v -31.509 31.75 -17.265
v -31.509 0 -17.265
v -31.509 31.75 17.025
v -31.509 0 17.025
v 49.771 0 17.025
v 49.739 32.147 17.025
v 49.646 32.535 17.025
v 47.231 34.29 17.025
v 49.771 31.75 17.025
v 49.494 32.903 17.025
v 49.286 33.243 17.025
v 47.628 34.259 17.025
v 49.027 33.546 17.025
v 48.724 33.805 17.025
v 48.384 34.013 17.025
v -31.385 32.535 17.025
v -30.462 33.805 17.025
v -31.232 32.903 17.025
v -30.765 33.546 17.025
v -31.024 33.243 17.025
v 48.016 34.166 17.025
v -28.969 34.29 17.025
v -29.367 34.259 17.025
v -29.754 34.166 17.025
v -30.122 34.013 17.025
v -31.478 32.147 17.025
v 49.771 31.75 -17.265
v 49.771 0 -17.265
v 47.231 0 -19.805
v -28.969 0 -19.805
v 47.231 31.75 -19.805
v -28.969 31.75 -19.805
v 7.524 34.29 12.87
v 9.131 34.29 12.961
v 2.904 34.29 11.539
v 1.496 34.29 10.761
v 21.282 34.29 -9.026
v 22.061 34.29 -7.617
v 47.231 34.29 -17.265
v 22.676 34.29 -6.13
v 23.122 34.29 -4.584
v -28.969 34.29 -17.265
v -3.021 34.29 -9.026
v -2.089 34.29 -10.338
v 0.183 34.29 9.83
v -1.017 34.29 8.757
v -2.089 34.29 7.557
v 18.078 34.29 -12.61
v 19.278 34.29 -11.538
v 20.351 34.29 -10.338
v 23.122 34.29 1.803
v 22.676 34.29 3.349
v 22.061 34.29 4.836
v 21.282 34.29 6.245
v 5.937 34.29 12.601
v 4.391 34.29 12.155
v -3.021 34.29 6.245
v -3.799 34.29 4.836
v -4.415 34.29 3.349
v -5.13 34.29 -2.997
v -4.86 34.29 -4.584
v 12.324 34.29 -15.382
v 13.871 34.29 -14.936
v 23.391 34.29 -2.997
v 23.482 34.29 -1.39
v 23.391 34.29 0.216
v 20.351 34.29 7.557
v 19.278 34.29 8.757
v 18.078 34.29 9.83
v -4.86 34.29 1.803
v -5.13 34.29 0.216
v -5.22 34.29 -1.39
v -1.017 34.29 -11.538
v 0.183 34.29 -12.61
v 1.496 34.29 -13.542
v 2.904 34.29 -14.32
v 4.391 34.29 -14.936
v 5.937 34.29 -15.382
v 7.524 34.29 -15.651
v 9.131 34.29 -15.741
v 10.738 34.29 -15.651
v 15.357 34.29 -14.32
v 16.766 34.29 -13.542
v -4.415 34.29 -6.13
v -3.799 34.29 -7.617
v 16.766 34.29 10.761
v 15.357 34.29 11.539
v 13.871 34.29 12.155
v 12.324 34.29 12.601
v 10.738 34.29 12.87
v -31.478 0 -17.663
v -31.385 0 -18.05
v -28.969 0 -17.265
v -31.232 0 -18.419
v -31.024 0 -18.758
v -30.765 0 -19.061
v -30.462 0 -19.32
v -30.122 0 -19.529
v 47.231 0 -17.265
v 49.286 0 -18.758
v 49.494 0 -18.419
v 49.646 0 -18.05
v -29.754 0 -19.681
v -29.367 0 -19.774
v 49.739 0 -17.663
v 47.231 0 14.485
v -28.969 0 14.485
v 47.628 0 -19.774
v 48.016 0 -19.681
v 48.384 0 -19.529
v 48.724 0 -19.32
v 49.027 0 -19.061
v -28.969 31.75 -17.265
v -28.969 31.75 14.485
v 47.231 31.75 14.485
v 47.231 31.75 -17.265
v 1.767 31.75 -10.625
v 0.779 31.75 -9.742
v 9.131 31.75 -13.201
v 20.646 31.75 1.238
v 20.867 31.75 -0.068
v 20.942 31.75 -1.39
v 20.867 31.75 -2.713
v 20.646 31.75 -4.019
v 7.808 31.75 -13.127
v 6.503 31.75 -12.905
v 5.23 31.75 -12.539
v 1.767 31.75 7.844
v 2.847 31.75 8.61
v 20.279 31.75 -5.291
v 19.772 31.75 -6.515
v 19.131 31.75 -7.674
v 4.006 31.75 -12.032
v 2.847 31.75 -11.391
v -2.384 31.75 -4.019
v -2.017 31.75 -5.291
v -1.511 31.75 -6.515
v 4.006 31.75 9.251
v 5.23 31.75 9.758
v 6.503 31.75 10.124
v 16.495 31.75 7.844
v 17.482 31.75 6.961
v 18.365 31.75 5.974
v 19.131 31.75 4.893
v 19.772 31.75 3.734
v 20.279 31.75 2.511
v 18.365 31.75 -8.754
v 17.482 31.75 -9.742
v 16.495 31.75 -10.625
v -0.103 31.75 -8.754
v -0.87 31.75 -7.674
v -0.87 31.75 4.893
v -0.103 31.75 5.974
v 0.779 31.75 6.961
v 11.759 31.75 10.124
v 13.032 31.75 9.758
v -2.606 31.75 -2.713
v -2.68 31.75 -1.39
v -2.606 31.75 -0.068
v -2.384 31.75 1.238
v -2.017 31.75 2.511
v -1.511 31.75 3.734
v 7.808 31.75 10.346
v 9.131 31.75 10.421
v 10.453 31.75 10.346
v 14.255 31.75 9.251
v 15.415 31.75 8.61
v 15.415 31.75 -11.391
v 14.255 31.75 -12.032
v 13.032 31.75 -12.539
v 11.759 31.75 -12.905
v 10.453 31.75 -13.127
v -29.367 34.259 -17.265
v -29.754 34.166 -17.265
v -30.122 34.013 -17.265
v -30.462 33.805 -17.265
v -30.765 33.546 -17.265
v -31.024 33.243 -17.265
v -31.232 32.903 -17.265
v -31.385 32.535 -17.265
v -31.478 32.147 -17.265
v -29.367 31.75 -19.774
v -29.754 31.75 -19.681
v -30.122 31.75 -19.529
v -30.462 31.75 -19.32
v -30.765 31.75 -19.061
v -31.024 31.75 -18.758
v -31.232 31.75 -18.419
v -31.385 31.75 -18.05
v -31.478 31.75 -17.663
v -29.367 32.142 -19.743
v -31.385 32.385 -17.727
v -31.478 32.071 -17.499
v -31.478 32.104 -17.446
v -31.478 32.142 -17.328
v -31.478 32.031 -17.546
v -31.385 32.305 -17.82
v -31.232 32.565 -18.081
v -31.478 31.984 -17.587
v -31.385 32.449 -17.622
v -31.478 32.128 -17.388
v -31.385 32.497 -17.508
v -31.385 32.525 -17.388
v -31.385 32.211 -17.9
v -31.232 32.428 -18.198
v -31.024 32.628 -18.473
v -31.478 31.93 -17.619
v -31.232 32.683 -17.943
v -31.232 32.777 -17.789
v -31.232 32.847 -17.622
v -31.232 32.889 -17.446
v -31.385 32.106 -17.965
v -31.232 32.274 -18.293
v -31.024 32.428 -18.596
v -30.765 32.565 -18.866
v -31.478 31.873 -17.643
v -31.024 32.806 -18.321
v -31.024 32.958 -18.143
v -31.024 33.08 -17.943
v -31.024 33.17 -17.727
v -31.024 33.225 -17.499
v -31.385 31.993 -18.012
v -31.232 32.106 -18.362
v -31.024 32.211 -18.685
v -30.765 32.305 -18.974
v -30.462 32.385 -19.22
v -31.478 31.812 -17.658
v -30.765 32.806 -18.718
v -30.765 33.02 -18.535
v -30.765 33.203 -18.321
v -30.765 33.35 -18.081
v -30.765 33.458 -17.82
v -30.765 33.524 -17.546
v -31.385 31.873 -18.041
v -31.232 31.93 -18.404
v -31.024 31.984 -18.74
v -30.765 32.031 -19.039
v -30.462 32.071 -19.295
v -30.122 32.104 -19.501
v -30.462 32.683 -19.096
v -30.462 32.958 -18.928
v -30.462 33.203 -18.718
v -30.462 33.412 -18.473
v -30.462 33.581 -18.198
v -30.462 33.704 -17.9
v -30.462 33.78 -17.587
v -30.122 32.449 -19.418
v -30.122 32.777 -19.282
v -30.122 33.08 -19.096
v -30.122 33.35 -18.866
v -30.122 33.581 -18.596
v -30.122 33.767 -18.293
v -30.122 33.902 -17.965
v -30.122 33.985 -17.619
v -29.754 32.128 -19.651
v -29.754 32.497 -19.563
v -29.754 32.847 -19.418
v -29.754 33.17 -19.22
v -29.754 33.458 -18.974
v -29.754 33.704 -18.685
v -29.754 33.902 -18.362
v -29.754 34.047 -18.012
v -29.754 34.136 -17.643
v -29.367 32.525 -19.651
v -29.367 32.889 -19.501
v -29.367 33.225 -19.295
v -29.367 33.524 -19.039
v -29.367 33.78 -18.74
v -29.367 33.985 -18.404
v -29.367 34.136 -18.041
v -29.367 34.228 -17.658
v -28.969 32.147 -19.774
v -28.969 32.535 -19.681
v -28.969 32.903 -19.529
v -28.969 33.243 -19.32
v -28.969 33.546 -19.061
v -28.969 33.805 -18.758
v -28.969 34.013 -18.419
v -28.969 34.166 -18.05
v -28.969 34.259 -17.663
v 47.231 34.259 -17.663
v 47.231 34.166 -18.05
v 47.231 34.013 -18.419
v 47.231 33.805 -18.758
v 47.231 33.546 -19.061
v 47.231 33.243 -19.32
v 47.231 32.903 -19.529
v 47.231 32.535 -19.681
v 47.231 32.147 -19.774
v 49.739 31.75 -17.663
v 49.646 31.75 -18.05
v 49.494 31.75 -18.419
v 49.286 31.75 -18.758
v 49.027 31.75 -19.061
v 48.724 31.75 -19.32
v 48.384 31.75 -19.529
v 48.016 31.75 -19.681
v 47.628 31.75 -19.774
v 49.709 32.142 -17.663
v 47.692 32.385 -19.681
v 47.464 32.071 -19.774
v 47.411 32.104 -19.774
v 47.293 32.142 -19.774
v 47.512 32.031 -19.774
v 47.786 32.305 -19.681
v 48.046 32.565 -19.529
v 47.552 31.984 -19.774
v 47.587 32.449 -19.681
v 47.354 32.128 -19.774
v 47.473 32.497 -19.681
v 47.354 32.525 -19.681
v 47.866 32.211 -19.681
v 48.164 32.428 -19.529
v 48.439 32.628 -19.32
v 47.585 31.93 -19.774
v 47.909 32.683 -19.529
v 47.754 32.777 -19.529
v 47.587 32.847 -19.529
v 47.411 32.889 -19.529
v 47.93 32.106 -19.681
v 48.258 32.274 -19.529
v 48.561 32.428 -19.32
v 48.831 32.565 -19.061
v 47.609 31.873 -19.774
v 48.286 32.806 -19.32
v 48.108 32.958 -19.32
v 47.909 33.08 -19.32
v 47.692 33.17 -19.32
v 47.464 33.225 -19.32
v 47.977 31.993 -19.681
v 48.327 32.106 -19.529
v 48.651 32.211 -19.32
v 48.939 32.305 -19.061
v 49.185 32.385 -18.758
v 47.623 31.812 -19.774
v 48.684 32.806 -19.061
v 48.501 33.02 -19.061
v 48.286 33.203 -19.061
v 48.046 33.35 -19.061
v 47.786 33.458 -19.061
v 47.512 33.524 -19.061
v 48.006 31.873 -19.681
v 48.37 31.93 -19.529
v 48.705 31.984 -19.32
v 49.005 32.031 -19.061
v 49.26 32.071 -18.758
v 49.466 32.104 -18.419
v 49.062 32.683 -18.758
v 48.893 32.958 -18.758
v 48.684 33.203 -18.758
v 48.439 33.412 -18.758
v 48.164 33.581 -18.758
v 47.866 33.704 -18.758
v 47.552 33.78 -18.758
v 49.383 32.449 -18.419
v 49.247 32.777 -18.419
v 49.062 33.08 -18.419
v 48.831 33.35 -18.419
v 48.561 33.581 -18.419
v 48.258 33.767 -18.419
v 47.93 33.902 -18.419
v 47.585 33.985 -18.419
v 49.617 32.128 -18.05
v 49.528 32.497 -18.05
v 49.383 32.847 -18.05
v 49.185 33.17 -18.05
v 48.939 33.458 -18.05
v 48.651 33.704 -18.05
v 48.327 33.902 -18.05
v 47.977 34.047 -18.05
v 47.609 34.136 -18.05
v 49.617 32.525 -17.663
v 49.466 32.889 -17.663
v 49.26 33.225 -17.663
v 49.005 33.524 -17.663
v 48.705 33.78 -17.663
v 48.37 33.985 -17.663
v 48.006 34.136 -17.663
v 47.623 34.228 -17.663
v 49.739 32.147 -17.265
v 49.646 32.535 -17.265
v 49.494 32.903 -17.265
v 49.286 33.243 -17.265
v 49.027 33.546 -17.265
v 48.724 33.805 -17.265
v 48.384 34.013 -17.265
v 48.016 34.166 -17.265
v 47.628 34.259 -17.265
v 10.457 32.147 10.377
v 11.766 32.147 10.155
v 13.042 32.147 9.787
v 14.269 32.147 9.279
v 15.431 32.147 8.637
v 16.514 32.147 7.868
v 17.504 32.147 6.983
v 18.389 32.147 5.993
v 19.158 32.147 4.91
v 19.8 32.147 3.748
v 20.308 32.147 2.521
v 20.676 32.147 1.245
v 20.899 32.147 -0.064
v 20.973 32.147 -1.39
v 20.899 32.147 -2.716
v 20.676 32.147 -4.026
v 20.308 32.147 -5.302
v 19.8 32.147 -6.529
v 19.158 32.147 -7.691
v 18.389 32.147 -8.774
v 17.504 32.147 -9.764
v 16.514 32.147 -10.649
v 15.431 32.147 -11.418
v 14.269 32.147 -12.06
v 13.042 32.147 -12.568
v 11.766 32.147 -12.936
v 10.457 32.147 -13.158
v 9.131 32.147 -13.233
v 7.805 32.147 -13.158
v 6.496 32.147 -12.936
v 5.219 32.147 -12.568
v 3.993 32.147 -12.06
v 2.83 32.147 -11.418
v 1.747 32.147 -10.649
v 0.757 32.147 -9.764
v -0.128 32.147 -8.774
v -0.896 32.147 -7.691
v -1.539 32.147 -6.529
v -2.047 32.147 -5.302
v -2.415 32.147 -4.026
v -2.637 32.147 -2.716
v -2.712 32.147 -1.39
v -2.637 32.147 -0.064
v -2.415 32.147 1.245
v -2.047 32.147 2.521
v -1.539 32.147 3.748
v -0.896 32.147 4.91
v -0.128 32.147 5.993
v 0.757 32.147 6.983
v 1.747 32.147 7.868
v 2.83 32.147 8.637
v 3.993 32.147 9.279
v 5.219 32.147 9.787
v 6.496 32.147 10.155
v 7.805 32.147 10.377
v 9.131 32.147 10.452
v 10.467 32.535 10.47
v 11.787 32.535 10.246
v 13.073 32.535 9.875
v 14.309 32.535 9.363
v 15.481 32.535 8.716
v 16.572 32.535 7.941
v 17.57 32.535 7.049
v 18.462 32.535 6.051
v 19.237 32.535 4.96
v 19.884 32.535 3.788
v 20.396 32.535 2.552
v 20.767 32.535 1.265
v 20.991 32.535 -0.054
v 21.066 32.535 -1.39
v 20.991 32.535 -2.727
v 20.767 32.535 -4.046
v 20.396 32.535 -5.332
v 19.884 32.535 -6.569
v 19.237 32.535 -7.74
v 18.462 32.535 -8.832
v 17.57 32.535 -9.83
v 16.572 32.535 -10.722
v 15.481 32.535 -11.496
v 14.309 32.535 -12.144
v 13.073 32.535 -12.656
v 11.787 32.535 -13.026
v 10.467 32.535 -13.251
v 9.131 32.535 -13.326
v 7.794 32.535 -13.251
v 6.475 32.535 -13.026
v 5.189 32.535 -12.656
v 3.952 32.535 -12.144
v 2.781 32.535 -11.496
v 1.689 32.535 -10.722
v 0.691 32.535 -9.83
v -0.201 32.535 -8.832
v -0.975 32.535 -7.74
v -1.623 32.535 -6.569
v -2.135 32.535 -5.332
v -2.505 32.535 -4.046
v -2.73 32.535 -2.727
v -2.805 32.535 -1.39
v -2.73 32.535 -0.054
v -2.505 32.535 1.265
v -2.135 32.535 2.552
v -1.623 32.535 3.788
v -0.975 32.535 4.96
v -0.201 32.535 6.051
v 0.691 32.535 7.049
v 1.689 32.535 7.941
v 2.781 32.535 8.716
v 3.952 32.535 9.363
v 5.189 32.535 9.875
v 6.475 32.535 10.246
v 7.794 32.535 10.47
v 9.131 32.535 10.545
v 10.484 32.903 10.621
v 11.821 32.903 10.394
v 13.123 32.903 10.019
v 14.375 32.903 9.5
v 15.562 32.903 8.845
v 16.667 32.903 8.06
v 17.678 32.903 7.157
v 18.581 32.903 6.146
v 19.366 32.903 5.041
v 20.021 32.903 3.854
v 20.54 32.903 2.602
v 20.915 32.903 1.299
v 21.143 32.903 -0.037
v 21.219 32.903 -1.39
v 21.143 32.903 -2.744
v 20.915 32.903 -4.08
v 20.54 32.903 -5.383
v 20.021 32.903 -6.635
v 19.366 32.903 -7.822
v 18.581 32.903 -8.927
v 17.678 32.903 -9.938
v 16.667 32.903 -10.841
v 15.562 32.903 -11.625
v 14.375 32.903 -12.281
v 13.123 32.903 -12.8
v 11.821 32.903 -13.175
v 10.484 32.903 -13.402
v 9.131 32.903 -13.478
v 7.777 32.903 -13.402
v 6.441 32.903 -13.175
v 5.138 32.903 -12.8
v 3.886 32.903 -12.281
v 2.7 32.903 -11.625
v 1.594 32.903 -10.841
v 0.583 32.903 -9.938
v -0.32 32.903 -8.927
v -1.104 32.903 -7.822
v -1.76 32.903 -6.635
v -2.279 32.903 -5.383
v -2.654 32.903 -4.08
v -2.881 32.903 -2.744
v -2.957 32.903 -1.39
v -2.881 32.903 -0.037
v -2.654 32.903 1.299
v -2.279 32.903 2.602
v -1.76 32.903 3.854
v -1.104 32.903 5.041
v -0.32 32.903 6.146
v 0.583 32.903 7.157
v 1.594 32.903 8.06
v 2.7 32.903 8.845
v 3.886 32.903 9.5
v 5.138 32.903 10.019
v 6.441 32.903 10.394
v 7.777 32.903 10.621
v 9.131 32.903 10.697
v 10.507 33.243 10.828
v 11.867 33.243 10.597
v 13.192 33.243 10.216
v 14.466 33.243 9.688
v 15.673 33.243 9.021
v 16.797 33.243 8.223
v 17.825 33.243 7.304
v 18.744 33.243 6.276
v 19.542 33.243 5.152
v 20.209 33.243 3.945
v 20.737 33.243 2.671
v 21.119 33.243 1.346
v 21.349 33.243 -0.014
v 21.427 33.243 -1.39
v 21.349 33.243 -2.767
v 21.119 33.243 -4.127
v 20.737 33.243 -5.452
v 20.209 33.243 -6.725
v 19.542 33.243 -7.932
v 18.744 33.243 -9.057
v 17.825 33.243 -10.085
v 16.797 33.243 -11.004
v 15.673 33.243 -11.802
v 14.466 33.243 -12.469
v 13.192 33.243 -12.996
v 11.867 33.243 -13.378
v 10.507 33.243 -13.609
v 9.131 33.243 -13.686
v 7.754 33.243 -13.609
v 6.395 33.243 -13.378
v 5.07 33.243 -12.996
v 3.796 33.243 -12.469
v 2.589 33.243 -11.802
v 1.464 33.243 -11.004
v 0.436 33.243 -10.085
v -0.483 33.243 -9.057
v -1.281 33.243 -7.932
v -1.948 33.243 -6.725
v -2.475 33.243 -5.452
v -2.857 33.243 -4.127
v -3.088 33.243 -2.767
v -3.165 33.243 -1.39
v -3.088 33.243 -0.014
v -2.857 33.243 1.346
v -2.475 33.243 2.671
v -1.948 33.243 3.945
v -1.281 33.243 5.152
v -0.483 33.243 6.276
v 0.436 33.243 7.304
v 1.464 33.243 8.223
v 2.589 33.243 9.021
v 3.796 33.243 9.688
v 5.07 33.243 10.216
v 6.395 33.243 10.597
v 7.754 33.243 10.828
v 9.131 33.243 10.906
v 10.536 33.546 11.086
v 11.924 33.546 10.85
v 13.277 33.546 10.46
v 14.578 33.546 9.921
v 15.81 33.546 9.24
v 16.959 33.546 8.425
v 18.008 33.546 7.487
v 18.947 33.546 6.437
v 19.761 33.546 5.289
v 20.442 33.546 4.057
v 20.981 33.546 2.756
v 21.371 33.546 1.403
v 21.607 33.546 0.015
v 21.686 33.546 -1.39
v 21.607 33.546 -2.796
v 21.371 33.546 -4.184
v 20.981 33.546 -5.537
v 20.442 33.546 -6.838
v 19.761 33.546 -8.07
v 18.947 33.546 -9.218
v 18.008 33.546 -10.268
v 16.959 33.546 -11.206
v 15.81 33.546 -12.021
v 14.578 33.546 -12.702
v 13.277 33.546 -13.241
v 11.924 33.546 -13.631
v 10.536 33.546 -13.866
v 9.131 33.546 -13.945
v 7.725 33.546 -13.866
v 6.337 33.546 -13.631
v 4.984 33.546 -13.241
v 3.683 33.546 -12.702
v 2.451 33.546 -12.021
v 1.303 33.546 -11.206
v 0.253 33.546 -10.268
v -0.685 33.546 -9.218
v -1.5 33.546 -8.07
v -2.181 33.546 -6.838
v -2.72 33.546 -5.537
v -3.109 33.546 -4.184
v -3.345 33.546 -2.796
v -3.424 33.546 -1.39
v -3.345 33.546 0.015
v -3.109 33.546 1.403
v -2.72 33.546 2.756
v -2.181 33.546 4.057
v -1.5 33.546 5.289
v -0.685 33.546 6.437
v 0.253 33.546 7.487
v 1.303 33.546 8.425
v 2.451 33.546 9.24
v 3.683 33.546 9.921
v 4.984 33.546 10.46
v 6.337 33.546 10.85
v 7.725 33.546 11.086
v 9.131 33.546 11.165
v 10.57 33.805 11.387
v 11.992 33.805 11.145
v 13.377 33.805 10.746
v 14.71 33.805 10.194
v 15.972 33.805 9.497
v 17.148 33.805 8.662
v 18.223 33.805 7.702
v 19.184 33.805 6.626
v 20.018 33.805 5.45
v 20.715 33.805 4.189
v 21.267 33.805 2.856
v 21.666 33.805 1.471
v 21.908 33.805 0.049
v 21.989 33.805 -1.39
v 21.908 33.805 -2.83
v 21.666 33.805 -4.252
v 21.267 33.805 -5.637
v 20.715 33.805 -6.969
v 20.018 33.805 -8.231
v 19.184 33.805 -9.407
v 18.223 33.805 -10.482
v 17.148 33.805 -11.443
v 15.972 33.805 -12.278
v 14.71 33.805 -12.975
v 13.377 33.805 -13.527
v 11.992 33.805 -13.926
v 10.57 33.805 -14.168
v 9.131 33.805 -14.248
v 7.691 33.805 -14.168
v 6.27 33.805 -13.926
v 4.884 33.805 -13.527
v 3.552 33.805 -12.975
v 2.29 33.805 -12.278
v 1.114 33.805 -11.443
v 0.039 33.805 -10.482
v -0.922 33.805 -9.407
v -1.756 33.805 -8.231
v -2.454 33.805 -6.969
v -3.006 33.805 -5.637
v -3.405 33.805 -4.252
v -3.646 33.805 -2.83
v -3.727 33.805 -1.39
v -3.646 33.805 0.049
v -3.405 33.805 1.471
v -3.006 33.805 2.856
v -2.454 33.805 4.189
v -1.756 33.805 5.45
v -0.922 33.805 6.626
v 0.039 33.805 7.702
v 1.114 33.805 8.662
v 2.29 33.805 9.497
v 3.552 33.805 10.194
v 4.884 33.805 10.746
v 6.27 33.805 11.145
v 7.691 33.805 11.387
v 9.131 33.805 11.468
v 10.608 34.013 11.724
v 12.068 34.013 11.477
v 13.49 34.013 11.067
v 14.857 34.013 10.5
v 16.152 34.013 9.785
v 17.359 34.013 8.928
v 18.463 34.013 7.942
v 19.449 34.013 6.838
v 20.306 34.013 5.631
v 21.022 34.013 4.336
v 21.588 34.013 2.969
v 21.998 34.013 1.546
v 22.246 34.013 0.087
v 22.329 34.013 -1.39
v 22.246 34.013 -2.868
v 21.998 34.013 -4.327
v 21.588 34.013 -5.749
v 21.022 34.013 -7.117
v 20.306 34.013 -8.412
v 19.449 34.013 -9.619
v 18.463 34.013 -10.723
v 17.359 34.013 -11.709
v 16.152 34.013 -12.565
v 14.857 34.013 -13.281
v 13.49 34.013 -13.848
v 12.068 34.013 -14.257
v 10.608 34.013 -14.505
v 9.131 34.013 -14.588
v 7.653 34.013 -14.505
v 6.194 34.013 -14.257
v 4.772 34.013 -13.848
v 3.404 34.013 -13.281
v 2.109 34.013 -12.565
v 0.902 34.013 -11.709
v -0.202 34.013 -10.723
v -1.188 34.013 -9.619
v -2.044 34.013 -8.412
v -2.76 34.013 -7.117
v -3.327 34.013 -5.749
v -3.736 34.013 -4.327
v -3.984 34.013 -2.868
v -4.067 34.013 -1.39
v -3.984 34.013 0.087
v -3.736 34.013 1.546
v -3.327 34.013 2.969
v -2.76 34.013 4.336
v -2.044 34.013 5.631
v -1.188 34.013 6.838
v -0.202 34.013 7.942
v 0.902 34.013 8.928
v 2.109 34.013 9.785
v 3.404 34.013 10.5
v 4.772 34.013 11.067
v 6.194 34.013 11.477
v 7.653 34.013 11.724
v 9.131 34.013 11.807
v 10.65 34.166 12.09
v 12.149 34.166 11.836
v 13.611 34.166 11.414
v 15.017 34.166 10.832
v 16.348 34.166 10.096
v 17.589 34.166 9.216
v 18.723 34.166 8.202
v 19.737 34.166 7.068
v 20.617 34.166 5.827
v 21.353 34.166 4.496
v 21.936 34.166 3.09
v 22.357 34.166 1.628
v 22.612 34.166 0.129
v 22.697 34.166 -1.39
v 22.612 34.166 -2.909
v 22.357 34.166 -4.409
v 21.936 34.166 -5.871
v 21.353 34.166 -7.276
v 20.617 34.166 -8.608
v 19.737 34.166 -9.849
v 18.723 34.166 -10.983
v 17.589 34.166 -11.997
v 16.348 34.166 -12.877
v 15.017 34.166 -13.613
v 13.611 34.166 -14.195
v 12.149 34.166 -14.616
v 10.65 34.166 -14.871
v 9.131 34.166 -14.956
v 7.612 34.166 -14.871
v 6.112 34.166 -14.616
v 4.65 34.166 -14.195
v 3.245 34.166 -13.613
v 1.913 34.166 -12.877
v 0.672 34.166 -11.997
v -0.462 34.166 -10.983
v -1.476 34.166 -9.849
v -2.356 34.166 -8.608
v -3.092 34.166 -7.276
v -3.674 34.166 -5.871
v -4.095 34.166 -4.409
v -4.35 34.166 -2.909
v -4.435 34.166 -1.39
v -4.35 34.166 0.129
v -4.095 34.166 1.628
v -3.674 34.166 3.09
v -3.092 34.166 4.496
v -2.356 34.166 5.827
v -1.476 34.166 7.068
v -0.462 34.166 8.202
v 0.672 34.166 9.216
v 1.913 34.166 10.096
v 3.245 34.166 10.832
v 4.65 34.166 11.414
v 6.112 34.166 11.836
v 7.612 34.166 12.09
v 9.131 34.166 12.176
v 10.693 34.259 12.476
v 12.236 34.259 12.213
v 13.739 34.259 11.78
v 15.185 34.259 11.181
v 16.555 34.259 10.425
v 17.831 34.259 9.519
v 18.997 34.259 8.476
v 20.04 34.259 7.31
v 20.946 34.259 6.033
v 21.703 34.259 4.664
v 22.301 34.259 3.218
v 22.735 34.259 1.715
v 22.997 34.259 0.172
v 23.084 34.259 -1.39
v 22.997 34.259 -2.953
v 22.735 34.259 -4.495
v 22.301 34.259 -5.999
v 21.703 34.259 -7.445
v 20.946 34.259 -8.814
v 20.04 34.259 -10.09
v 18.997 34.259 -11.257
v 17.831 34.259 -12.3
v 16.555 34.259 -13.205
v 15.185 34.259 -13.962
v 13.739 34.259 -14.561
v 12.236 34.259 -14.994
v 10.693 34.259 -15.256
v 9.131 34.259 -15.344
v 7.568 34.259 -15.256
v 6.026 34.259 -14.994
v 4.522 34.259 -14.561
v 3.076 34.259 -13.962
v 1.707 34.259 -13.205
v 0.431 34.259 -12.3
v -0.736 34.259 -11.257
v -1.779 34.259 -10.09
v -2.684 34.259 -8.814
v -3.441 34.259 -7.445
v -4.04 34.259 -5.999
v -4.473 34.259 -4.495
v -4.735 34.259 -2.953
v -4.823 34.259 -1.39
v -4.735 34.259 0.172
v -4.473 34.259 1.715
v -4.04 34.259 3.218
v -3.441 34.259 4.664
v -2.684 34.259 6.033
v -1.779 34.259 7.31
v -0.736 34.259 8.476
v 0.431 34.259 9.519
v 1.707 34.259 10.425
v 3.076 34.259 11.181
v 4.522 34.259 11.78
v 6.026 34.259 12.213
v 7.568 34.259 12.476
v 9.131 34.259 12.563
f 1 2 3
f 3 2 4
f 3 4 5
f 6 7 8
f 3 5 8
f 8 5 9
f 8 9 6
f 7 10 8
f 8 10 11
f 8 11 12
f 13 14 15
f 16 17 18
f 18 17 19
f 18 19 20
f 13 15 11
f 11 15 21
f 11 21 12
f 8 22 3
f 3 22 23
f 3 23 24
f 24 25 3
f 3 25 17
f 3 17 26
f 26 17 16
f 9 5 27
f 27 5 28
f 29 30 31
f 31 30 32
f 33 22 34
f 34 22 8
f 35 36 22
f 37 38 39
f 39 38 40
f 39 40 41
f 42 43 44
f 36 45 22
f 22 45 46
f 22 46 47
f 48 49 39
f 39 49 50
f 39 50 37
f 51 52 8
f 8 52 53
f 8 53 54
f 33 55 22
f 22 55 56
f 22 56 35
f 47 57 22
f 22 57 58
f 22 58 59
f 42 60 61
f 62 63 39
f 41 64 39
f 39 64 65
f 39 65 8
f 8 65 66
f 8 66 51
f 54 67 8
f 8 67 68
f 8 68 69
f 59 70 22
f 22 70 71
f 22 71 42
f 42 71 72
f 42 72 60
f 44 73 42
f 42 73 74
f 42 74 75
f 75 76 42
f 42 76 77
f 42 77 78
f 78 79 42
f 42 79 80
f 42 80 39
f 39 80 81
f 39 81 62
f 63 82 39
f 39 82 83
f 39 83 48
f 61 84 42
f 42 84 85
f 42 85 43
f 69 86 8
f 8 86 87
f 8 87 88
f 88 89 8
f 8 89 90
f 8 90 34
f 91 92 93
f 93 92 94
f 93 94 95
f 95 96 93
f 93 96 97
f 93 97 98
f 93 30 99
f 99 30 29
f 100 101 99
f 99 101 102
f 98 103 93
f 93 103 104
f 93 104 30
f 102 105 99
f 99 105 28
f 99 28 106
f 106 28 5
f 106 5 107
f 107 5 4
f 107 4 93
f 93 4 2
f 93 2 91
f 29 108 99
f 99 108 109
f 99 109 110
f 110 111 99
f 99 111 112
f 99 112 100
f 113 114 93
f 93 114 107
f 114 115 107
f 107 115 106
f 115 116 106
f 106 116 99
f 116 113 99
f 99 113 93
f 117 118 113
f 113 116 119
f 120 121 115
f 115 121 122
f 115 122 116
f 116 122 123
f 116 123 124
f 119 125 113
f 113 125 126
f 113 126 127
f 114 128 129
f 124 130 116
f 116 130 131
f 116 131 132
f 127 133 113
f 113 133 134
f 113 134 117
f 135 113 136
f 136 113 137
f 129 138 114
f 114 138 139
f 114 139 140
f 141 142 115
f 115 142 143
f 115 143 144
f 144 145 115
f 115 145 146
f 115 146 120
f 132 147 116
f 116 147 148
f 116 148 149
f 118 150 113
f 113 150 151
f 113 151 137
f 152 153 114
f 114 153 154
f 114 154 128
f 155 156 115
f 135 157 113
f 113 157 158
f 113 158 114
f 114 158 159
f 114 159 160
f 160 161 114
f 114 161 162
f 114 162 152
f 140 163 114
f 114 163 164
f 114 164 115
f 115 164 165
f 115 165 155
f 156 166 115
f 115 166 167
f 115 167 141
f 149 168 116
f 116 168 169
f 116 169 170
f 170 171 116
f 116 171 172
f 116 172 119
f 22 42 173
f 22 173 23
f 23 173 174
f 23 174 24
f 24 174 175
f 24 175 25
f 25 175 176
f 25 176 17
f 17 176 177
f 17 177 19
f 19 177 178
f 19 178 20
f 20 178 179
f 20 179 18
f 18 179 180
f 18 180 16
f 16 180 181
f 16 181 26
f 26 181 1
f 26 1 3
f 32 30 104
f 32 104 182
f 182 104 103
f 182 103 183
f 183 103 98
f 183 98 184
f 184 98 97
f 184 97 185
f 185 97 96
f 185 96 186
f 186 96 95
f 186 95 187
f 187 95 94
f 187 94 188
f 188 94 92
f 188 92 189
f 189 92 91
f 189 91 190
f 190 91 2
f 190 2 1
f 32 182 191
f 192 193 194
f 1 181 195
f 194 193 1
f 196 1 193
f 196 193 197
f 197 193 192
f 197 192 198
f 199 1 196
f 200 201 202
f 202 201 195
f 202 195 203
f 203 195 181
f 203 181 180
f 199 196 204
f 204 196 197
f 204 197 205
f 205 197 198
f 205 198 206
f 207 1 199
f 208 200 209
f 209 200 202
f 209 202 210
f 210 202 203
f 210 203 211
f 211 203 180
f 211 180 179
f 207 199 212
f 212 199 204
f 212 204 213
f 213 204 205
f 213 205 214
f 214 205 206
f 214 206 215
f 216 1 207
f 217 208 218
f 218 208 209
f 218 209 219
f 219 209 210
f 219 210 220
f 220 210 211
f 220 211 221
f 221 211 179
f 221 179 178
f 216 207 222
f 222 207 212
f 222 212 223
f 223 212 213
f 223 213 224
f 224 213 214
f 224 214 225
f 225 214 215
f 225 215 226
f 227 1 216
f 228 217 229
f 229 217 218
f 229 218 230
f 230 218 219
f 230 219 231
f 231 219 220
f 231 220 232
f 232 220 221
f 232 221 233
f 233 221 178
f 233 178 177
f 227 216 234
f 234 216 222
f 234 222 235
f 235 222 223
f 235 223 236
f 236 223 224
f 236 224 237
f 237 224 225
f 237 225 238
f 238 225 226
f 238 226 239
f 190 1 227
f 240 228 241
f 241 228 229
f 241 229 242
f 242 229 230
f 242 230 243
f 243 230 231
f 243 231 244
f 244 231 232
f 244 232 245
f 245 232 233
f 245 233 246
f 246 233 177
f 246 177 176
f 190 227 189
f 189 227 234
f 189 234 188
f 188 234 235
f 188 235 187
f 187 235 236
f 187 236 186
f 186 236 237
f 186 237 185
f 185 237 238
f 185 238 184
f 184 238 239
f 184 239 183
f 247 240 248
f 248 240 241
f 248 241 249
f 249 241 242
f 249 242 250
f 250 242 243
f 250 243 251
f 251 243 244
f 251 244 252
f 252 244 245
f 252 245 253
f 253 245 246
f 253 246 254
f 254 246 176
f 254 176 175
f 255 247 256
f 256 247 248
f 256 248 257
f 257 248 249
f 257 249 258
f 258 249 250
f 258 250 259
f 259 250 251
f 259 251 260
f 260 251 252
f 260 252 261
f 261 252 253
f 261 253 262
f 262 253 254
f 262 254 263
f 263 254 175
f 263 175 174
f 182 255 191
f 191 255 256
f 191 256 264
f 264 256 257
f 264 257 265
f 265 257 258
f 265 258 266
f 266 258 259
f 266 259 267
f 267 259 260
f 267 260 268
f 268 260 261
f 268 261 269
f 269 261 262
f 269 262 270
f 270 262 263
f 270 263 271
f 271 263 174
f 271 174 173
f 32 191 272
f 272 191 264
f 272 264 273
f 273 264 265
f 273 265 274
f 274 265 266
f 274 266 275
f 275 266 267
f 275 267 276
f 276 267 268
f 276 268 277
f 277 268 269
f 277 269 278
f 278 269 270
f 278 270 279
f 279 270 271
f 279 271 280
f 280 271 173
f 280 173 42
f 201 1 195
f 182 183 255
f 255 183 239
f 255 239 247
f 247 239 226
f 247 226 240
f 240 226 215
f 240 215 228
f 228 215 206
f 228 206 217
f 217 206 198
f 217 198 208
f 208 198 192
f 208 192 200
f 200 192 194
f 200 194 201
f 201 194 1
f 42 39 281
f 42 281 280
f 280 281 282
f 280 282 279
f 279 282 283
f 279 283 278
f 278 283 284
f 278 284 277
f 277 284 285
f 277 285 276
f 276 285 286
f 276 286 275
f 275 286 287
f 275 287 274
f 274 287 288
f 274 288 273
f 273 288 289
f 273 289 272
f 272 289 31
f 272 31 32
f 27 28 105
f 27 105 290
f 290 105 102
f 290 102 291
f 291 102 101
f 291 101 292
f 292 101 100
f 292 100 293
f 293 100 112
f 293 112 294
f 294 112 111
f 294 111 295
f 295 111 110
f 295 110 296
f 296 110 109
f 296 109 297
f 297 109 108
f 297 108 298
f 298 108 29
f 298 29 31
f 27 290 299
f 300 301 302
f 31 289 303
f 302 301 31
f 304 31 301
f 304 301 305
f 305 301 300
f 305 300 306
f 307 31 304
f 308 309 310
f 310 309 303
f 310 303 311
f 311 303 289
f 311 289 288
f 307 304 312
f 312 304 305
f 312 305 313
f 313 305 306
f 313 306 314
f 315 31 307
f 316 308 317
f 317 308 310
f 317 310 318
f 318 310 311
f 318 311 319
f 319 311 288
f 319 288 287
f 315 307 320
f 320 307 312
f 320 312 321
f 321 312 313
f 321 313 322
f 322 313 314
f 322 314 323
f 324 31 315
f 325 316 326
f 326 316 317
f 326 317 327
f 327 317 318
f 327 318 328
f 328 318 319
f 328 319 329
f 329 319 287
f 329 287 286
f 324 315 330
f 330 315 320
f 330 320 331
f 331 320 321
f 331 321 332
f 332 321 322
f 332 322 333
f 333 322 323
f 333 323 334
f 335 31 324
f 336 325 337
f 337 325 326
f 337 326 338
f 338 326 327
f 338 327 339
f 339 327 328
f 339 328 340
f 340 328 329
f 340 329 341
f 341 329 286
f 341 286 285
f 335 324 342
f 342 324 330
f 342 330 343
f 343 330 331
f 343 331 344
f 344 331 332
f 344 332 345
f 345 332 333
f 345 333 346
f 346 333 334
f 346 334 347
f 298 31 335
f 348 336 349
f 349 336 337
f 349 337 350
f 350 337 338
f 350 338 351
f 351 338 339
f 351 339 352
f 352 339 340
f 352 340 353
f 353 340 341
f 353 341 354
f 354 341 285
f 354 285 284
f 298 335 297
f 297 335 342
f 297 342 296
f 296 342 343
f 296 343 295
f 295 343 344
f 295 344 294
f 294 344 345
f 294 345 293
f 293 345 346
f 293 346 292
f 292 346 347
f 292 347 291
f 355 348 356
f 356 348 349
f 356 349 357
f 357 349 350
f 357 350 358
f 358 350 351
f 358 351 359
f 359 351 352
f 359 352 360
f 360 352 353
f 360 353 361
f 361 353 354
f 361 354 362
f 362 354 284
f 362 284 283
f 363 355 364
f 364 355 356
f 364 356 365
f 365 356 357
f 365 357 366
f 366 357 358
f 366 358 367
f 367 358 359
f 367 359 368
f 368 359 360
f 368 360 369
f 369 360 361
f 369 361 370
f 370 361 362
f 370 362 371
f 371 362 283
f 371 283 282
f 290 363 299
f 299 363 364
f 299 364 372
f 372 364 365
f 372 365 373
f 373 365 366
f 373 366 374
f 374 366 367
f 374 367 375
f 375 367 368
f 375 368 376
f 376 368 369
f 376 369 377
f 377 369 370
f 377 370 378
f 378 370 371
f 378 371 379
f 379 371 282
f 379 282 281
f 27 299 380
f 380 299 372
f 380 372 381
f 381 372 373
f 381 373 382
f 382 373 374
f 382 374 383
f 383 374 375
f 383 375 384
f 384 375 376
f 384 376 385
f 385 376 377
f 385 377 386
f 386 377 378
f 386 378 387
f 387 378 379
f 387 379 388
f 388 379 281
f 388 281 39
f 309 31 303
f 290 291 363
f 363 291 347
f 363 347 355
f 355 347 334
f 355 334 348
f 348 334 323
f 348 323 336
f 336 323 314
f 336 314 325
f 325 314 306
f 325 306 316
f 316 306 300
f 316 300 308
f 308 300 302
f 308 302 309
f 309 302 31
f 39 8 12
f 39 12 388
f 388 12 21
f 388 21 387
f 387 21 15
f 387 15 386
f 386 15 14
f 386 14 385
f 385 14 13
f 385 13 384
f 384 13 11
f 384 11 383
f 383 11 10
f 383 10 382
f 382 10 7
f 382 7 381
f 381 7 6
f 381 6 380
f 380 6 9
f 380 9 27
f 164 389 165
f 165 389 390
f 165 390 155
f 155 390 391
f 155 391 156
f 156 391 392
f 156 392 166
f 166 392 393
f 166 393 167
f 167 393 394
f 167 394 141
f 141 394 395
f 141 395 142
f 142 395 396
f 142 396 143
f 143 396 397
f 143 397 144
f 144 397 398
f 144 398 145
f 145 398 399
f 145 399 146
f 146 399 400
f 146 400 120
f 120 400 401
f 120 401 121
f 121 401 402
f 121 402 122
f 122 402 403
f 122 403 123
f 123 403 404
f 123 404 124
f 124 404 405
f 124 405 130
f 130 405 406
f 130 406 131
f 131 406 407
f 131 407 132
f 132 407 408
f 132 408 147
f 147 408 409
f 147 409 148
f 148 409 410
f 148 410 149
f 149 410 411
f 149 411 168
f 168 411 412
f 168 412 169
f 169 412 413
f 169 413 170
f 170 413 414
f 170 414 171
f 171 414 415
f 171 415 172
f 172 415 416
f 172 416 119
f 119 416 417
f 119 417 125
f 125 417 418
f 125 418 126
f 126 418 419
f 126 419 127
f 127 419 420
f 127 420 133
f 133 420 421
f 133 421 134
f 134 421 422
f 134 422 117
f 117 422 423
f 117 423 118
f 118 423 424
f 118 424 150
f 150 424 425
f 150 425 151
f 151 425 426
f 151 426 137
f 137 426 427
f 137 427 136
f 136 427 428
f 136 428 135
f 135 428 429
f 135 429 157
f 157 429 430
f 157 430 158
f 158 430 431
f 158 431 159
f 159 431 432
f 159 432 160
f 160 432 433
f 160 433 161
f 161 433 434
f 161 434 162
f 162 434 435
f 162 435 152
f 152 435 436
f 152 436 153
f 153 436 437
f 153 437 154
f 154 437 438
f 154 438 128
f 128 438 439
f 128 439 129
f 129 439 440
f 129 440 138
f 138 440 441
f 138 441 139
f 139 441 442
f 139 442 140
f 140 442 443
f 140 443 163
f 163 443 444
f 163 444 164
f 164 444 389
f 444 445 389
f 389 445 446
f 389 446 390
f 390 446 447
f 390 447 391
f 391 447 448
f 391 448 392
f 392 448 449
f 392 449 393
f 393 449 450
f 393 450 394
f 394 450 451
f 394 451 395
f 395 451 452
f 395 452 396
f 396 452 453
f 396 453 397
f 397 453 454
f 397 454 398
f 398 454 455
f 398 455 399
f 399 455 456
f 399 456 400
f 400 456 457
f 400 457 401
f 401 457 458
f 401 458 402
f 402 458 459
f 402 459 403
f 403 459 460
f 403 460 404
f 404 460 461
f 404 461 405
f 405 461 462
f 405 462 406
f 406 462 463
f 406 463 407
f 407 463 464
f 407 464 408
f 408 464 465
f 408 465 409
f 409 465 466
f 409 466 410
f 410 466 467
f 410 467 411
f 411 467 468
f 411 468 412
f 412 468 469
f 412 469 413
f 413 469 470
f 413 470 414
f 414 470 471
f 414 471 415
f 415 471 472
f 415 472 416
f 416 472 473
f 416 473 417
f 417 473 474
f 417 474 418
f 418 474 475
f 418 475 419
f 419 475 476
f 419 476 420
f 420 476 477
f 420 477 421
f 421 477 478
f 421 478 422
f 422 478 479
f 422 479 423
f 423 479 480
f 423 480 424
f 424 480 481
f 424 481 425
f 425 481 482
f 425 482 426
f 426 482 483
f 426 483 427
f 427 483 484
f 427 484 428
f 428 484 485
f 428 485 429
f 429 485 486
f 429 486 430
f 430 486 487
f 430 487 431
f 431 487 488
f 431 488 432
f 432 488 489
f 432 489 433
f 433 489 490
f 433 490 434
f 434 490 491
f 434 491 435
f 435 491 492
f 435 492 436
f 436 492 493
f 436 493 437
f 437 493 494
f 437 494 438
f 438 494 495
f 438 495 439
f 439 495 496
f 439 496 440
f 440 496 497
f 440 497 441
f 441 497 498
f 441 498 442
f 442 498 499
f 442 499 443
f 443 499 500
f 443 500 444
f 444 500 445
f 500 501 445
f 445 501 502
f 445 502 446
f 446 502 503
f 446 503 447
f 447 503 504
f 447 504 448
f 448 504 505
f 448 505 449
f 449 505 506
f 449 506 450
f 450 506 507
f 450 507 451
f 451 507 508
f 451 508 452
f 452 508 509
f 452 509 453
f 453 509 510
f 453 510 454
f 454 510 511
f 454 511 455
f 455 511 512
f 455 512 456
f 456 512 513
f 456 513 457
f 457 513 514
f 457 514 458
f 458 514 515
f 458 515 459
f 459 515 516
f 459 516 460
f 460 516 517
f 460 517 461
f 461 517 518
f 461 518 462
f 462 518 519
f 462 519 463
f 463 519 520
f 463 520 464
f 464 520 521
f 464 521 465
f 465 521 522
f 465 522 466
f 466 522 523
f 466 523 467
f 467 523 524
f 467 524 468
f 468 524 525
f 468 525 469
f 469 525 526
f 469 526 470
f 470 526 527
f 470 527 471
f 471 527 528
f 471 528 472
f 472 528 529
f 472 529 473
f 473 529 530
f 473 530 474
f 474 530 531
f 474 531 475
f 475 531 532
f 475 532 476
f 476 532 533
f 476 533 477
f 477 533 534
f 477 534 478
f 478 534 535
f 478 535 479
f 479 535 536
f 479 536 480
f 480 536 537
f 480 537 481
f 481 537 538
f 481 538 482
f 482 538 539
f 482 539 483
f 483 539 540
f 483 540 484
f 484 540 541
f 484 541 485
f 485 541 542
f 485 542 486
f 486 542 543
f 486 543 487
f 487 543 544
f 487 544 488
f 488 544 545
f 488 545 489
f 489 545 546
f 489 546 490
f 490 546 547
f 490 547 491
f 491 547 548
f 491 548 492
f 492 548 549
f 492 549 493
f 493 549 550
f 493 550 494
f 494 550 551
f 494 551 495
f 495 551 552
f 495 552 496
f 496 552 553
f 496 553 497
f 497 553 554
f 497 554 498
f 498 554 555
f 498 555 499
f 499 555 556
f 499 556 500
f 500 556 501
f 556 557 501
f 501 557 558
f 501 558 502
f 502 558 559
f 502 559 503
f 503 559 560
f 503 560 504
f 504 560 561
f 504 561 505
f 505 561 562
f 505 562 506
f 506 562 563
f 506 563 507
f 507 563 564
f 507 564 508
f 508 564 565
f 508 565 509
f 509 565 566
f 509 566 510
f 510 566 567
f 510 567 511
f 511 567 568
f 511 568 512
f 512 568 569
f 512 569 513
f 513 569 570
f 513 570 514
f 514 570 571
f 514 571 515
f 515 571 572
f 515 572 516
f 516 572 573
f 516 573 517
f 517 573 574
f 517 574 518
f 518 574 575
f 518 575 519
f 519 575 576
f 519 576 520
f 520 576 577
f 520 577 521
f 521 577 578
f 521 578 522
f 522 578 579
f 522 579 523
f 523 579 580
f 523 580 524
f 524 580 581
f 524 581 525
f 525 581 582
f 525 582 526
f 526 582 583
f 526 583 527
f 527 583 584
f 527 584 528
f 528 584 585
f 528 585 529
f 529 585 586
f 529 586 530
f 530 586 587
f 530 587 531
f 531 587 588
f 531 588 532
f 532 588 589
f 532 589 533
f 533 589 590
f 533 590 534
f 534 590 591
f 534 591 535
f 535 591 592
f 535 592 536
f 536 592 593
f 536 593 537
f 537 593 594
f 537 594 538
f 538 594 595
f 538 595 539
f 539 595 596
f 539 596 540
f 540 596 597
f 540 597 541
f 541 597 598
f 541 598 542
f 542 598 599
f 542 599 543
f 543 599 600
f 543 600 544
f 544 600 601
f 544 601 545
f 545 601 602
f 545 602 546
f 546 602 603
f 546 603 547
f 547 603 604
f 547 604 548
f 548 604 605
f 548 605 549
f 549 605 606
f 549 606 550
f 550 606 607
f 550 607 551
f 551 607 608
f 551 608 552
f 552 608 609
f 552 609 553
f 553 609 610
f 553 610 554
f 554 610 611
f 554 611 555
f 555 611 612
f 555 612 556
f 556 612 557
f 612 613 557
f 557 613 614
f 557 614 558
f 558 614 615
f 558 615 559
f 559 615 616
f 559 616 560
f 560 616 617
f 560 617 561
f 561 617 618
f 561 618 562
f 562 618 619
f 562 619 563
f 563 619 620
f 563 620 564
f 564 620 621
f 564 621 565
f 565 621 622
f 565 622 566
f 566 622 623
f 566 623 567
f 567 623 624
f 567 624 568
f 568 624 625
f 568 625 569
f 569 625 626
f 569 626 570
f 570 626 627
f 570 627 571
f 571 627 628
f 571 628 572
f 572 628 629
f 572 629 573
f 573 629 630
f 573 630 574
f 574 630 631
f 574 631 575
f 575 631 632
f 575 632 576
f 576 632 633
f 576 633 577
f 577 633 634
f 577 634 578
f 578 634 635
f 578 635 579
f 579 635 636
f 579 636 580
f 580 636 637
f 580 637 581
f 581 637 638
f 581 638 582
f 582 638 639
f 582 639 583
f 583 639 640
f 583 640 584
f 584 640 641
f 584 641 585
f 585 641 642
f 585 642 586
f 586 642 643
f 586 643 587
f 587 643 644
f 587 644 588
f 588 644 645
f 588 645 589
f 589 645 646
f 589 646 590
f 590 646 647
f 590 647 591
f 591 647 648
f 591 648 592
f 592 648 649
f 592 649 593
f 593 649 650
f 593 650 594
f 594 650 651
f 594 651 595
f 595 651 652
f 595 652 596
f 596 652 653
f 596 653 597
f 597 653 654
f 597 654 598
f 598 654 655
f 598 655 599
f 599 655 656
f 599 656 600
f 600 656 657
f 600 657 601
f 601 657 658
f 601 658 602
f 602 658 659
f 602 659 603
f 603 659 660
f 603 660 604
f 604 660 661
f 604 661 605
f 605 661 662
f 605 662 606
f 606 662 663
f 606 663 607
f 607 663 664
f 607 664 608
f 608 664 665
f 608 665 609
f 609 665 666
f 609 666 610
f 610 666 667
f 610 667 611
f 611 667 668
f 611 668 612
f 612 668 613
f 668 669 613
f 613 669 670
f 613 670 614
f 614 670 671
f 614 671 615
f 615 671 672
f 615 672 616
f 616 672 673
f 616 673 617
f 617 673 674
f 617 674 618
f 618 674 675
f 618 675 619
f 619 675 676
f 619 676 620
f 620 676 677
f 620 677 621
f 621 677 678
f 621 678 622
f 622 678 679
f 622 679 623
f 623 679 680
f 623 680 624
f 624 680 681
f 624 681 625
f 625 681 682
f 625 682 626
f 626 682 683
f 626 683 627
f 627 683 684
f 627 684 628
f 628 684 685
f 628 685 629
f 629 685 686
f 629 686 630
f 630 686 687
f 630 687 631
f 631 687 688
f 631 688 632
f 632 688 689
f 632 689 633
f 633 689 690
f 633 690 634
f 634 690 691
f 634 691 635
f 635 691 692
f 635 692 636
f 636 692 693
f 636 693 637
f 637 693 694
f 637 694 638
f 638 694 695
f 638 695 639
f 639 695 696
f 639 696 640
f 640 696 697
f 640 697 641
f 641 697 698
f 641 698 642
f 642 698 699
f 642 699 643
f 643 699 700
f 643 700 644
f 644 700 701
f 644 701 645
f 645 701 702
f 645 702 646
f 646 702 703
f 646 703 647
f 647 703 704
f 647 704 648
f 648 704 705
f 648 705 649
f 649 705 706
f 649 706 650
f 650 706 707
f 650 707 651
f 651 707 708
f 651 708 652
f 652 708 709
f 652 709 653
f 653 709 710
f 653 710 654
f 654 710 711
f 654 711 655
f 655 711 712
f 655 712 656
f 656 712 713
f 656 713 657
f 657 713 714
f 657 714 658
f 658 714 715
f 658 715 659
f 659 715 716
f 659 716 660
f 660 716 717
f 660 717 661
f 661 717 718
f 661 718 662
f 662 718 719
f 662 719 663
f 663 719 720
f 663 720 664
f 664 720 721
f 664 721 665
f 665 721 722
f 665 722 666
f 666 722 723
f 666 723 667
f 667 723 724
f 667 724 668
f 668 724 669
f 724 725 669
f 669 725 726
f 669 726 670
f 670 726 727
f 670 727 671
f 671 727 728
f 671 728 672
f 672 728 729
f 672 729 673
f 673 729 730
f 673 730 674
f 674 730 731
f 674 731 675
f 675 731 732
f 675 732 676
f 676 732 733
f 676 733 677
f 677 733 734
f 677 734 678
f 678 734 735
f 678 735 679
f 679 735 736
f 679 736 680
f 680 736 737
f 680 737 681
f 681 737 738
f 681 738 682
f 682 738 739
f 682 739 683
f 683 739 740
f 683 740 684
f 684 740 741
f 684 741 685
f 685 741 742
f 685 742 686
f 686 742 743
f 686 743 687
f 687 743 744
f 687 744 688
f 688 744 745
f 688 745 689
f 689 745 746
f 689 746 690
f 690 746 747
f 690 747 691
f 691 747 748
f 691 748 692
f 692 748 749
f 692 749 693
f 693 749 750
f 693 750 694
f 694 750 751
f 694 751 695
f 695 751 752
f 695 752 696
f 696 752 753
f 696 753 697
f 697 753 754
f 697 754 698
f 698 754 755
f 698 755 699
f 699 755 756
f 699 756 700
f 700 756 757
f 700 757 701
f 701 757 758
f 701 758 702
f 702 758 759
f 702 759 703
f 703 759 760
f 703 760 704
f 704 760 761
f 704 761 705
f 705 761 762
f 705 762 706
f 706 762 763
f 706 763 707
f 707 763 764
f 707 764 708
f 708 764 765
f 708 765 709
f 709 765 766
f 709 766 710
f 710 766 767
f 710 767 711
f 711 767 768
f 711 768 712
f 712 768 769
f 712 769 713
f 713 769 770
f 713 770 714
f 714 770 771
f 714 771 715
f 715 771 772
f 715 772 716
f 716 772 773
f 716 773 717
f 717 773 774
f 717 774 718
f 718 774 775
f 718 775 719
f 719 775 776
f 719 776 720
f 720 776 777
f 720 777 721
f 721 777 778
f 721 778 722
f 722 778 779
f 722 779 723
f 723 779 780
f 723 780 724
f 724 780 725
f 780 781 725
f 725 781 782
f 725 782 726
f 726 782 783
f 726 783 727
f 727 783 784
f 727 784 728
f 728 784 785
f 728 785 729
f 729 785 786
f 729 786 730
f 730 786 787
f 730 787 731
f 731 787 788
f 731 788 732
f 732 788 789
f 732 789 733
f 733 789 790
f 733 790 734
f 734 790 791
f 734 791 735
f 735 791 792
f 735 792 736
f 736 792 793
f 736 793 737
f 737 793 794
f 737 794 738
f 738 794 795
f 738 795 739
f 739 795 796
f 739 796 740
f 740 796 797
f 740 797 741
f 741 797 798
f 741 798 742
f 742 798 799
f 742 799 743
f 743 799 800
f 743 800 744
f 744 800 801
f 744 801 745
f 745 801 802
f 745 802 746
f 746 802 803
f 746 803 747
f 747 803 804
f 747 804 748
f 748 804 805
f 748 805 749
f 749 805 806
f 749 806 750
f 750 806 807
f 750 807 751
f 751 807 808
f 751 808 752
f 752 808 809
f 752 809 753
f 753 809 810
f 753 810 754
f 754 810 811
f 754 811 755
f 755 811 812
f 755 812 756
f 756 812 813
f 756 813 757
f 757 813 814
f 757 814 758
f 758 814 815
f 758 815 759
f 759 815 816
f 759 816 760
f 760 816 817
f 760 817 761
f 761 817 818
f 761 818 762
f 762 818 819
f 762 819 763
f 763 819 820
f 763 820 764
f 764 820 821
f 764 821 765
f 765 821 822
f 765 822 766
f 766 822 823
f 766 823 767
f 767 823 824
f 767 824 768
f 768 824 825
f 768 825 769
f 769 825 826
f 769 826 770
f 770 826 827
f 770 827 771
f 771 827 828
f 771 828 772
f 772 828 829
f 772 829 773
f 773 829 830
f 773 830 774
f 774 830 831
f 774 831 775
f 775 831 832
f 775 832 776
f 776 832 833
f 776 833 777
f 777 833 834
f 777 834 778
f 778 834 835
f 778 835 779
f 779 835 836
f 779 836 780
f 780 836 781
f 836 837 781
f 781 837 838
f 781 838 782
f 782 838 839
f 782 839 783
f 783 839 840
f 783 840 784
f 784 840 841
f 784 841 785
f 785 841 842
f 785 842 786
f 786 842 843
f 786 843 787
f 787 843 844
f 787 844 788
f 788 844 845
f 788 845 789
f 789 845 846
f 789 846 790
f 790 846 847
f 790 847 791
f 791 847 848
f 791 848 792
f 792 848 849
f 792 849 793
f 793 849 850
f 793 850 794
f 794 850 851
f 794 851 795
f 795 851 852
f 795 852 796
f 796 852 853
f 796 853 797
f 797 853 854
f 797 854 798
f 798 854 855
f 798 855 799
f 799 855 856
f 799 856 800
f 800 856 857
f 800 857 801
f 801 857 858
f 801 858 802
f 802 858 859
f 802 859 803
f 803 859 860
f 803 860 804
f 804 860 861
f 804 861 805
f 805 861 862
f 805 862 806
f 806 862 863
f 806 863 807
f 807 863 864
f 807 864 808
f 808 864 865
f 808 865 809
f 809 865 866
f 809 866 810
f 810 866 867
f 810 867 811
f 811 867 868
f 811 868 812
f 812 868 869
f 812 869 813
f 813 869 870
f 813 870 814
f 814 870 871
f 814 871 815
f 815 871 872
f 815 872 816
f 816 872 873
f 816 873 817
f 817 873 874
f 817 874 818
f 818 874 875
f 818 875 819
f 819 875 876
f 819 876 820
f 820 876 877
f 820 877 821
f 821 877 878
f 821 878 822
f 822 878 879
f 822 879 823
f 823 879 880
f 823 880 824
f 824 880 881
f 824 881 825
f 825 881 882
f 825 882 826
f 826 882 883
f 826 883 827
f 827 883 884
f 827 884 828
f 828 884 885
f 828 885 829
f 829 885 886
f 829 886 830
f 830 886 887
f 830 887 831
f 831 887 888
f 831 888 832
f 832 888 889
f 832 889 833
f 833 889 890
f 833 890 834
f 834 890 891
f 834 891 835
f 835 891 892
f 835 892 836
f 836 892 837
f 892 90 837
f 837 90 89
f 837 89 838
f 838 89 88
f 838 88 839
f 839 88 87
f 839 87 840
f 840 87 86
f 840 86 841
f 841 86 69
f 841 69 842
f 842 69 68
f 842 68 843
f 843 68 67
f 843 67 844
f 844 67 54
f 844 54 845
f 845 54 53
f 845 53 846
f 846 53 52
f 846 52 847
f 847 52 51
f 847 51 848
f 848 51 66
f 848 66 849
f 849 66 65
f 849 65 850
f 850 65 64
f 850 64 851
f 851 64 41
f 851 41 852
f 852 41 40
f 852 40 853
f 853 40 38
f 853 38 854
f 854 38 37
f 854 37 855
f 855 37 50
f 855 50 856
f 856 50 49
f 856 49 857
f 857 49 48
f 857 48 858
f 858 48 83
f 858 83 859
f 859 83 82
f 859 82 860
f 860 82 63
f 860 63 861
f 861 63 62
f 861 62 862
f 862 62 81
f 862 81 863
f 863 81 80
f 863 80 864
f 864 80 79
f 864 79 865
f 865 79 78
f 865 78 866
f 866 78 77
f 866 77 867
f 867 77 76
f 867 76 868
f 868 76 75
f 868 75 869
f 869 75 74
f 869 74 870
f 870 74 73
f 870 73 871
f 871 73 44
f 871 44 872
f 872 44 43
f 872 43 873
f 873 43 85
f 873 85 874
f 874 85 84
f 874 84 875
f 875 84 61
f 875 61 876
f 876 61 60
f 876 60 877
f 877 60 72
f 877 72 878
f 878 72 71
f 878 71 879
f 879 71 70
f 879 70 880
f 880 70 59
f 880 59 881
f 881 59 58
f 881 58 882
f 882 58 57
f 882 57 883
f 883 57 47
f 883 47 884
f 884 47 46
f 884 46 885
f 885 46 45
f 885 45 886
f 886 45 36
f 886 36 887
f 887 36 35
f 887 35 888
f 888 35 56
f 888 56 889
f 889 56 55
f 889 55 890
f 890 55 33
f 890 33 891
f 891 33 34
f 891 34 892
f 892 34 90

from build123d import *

# Parameters (mm, degrees)
SKETCH1_W           = 76.2
SKETCH1_H           = 31.75
BOSS_EXTRUDE1_DEPTH = 31.75
SHELL4_T            = 2.54
CUT_EXTRUDE5_START  = 34.29
SKETCH2_R           = 11.811
CUT_EXTRUDE5_DEPTH  = 12.7
FILLET3_R           = 2.54


with BuildPart() as part:
    # Sketch1 → Boss-Extrude1 (new body)
    with BuildSketch(Plane(origin=(0, 0, 0), x_dir=(1, 0, 0), z_dir=(0, 1, 0))):
        with Locations((9.130718954, 1.390359477)):
            Rectangle(SKETCH1_W, SKETCH1_H)
    extrude(amount=BOSS_EXTRUDE1_DEPTH)

    # Shell4
    shell4_openings = [part.faces().sort_by_distance(p)[0] for p in [
        (9.130718954, 0, -1.390359477),
    ]]
    offset(amount=SHELL4_T, openings=shell4_openings, kind=Kind.INTERSECTION)

    # Sketch2 → Cut-Extrude5 (cut, symmetric)
    with BuildSketch(Plane(origin=(0, 0, 0), x_dir=(1, 0, 0), z_dir=(0, 1, 0)).offset(CUT_EXTRUDE5_START)):
        with Locations(Location((9.130718954, 1.390359477, 0), (0, 0, 270))):
            Circle(SKETCH2_R)
    extrude(amount=CUT_EXTRUDE5_DEPTH, both=True, mode=Mode.SUBTRACT)

    # Fillet3
    fillet3_edges = [part.edges().sort_by_distance(p)[0] for p in [
        (49.770718954, 34.29, -1.390359477),
        (9.130718954, 34.29, -19.805359477),
        (9.130718954, 34.29, -13.201359477),
        (-31.509281046, 34.29, -1.390359477),
        (-31.509281046, 17.145, -19.805359477),
        (49.770718954, 17.145, -19.805359477),
    ]]
    fillet(fillet3_edges, radius=FILLET3_R - 0.0001)  # a hair under: the kernel refuses the full size


solid = part.part
